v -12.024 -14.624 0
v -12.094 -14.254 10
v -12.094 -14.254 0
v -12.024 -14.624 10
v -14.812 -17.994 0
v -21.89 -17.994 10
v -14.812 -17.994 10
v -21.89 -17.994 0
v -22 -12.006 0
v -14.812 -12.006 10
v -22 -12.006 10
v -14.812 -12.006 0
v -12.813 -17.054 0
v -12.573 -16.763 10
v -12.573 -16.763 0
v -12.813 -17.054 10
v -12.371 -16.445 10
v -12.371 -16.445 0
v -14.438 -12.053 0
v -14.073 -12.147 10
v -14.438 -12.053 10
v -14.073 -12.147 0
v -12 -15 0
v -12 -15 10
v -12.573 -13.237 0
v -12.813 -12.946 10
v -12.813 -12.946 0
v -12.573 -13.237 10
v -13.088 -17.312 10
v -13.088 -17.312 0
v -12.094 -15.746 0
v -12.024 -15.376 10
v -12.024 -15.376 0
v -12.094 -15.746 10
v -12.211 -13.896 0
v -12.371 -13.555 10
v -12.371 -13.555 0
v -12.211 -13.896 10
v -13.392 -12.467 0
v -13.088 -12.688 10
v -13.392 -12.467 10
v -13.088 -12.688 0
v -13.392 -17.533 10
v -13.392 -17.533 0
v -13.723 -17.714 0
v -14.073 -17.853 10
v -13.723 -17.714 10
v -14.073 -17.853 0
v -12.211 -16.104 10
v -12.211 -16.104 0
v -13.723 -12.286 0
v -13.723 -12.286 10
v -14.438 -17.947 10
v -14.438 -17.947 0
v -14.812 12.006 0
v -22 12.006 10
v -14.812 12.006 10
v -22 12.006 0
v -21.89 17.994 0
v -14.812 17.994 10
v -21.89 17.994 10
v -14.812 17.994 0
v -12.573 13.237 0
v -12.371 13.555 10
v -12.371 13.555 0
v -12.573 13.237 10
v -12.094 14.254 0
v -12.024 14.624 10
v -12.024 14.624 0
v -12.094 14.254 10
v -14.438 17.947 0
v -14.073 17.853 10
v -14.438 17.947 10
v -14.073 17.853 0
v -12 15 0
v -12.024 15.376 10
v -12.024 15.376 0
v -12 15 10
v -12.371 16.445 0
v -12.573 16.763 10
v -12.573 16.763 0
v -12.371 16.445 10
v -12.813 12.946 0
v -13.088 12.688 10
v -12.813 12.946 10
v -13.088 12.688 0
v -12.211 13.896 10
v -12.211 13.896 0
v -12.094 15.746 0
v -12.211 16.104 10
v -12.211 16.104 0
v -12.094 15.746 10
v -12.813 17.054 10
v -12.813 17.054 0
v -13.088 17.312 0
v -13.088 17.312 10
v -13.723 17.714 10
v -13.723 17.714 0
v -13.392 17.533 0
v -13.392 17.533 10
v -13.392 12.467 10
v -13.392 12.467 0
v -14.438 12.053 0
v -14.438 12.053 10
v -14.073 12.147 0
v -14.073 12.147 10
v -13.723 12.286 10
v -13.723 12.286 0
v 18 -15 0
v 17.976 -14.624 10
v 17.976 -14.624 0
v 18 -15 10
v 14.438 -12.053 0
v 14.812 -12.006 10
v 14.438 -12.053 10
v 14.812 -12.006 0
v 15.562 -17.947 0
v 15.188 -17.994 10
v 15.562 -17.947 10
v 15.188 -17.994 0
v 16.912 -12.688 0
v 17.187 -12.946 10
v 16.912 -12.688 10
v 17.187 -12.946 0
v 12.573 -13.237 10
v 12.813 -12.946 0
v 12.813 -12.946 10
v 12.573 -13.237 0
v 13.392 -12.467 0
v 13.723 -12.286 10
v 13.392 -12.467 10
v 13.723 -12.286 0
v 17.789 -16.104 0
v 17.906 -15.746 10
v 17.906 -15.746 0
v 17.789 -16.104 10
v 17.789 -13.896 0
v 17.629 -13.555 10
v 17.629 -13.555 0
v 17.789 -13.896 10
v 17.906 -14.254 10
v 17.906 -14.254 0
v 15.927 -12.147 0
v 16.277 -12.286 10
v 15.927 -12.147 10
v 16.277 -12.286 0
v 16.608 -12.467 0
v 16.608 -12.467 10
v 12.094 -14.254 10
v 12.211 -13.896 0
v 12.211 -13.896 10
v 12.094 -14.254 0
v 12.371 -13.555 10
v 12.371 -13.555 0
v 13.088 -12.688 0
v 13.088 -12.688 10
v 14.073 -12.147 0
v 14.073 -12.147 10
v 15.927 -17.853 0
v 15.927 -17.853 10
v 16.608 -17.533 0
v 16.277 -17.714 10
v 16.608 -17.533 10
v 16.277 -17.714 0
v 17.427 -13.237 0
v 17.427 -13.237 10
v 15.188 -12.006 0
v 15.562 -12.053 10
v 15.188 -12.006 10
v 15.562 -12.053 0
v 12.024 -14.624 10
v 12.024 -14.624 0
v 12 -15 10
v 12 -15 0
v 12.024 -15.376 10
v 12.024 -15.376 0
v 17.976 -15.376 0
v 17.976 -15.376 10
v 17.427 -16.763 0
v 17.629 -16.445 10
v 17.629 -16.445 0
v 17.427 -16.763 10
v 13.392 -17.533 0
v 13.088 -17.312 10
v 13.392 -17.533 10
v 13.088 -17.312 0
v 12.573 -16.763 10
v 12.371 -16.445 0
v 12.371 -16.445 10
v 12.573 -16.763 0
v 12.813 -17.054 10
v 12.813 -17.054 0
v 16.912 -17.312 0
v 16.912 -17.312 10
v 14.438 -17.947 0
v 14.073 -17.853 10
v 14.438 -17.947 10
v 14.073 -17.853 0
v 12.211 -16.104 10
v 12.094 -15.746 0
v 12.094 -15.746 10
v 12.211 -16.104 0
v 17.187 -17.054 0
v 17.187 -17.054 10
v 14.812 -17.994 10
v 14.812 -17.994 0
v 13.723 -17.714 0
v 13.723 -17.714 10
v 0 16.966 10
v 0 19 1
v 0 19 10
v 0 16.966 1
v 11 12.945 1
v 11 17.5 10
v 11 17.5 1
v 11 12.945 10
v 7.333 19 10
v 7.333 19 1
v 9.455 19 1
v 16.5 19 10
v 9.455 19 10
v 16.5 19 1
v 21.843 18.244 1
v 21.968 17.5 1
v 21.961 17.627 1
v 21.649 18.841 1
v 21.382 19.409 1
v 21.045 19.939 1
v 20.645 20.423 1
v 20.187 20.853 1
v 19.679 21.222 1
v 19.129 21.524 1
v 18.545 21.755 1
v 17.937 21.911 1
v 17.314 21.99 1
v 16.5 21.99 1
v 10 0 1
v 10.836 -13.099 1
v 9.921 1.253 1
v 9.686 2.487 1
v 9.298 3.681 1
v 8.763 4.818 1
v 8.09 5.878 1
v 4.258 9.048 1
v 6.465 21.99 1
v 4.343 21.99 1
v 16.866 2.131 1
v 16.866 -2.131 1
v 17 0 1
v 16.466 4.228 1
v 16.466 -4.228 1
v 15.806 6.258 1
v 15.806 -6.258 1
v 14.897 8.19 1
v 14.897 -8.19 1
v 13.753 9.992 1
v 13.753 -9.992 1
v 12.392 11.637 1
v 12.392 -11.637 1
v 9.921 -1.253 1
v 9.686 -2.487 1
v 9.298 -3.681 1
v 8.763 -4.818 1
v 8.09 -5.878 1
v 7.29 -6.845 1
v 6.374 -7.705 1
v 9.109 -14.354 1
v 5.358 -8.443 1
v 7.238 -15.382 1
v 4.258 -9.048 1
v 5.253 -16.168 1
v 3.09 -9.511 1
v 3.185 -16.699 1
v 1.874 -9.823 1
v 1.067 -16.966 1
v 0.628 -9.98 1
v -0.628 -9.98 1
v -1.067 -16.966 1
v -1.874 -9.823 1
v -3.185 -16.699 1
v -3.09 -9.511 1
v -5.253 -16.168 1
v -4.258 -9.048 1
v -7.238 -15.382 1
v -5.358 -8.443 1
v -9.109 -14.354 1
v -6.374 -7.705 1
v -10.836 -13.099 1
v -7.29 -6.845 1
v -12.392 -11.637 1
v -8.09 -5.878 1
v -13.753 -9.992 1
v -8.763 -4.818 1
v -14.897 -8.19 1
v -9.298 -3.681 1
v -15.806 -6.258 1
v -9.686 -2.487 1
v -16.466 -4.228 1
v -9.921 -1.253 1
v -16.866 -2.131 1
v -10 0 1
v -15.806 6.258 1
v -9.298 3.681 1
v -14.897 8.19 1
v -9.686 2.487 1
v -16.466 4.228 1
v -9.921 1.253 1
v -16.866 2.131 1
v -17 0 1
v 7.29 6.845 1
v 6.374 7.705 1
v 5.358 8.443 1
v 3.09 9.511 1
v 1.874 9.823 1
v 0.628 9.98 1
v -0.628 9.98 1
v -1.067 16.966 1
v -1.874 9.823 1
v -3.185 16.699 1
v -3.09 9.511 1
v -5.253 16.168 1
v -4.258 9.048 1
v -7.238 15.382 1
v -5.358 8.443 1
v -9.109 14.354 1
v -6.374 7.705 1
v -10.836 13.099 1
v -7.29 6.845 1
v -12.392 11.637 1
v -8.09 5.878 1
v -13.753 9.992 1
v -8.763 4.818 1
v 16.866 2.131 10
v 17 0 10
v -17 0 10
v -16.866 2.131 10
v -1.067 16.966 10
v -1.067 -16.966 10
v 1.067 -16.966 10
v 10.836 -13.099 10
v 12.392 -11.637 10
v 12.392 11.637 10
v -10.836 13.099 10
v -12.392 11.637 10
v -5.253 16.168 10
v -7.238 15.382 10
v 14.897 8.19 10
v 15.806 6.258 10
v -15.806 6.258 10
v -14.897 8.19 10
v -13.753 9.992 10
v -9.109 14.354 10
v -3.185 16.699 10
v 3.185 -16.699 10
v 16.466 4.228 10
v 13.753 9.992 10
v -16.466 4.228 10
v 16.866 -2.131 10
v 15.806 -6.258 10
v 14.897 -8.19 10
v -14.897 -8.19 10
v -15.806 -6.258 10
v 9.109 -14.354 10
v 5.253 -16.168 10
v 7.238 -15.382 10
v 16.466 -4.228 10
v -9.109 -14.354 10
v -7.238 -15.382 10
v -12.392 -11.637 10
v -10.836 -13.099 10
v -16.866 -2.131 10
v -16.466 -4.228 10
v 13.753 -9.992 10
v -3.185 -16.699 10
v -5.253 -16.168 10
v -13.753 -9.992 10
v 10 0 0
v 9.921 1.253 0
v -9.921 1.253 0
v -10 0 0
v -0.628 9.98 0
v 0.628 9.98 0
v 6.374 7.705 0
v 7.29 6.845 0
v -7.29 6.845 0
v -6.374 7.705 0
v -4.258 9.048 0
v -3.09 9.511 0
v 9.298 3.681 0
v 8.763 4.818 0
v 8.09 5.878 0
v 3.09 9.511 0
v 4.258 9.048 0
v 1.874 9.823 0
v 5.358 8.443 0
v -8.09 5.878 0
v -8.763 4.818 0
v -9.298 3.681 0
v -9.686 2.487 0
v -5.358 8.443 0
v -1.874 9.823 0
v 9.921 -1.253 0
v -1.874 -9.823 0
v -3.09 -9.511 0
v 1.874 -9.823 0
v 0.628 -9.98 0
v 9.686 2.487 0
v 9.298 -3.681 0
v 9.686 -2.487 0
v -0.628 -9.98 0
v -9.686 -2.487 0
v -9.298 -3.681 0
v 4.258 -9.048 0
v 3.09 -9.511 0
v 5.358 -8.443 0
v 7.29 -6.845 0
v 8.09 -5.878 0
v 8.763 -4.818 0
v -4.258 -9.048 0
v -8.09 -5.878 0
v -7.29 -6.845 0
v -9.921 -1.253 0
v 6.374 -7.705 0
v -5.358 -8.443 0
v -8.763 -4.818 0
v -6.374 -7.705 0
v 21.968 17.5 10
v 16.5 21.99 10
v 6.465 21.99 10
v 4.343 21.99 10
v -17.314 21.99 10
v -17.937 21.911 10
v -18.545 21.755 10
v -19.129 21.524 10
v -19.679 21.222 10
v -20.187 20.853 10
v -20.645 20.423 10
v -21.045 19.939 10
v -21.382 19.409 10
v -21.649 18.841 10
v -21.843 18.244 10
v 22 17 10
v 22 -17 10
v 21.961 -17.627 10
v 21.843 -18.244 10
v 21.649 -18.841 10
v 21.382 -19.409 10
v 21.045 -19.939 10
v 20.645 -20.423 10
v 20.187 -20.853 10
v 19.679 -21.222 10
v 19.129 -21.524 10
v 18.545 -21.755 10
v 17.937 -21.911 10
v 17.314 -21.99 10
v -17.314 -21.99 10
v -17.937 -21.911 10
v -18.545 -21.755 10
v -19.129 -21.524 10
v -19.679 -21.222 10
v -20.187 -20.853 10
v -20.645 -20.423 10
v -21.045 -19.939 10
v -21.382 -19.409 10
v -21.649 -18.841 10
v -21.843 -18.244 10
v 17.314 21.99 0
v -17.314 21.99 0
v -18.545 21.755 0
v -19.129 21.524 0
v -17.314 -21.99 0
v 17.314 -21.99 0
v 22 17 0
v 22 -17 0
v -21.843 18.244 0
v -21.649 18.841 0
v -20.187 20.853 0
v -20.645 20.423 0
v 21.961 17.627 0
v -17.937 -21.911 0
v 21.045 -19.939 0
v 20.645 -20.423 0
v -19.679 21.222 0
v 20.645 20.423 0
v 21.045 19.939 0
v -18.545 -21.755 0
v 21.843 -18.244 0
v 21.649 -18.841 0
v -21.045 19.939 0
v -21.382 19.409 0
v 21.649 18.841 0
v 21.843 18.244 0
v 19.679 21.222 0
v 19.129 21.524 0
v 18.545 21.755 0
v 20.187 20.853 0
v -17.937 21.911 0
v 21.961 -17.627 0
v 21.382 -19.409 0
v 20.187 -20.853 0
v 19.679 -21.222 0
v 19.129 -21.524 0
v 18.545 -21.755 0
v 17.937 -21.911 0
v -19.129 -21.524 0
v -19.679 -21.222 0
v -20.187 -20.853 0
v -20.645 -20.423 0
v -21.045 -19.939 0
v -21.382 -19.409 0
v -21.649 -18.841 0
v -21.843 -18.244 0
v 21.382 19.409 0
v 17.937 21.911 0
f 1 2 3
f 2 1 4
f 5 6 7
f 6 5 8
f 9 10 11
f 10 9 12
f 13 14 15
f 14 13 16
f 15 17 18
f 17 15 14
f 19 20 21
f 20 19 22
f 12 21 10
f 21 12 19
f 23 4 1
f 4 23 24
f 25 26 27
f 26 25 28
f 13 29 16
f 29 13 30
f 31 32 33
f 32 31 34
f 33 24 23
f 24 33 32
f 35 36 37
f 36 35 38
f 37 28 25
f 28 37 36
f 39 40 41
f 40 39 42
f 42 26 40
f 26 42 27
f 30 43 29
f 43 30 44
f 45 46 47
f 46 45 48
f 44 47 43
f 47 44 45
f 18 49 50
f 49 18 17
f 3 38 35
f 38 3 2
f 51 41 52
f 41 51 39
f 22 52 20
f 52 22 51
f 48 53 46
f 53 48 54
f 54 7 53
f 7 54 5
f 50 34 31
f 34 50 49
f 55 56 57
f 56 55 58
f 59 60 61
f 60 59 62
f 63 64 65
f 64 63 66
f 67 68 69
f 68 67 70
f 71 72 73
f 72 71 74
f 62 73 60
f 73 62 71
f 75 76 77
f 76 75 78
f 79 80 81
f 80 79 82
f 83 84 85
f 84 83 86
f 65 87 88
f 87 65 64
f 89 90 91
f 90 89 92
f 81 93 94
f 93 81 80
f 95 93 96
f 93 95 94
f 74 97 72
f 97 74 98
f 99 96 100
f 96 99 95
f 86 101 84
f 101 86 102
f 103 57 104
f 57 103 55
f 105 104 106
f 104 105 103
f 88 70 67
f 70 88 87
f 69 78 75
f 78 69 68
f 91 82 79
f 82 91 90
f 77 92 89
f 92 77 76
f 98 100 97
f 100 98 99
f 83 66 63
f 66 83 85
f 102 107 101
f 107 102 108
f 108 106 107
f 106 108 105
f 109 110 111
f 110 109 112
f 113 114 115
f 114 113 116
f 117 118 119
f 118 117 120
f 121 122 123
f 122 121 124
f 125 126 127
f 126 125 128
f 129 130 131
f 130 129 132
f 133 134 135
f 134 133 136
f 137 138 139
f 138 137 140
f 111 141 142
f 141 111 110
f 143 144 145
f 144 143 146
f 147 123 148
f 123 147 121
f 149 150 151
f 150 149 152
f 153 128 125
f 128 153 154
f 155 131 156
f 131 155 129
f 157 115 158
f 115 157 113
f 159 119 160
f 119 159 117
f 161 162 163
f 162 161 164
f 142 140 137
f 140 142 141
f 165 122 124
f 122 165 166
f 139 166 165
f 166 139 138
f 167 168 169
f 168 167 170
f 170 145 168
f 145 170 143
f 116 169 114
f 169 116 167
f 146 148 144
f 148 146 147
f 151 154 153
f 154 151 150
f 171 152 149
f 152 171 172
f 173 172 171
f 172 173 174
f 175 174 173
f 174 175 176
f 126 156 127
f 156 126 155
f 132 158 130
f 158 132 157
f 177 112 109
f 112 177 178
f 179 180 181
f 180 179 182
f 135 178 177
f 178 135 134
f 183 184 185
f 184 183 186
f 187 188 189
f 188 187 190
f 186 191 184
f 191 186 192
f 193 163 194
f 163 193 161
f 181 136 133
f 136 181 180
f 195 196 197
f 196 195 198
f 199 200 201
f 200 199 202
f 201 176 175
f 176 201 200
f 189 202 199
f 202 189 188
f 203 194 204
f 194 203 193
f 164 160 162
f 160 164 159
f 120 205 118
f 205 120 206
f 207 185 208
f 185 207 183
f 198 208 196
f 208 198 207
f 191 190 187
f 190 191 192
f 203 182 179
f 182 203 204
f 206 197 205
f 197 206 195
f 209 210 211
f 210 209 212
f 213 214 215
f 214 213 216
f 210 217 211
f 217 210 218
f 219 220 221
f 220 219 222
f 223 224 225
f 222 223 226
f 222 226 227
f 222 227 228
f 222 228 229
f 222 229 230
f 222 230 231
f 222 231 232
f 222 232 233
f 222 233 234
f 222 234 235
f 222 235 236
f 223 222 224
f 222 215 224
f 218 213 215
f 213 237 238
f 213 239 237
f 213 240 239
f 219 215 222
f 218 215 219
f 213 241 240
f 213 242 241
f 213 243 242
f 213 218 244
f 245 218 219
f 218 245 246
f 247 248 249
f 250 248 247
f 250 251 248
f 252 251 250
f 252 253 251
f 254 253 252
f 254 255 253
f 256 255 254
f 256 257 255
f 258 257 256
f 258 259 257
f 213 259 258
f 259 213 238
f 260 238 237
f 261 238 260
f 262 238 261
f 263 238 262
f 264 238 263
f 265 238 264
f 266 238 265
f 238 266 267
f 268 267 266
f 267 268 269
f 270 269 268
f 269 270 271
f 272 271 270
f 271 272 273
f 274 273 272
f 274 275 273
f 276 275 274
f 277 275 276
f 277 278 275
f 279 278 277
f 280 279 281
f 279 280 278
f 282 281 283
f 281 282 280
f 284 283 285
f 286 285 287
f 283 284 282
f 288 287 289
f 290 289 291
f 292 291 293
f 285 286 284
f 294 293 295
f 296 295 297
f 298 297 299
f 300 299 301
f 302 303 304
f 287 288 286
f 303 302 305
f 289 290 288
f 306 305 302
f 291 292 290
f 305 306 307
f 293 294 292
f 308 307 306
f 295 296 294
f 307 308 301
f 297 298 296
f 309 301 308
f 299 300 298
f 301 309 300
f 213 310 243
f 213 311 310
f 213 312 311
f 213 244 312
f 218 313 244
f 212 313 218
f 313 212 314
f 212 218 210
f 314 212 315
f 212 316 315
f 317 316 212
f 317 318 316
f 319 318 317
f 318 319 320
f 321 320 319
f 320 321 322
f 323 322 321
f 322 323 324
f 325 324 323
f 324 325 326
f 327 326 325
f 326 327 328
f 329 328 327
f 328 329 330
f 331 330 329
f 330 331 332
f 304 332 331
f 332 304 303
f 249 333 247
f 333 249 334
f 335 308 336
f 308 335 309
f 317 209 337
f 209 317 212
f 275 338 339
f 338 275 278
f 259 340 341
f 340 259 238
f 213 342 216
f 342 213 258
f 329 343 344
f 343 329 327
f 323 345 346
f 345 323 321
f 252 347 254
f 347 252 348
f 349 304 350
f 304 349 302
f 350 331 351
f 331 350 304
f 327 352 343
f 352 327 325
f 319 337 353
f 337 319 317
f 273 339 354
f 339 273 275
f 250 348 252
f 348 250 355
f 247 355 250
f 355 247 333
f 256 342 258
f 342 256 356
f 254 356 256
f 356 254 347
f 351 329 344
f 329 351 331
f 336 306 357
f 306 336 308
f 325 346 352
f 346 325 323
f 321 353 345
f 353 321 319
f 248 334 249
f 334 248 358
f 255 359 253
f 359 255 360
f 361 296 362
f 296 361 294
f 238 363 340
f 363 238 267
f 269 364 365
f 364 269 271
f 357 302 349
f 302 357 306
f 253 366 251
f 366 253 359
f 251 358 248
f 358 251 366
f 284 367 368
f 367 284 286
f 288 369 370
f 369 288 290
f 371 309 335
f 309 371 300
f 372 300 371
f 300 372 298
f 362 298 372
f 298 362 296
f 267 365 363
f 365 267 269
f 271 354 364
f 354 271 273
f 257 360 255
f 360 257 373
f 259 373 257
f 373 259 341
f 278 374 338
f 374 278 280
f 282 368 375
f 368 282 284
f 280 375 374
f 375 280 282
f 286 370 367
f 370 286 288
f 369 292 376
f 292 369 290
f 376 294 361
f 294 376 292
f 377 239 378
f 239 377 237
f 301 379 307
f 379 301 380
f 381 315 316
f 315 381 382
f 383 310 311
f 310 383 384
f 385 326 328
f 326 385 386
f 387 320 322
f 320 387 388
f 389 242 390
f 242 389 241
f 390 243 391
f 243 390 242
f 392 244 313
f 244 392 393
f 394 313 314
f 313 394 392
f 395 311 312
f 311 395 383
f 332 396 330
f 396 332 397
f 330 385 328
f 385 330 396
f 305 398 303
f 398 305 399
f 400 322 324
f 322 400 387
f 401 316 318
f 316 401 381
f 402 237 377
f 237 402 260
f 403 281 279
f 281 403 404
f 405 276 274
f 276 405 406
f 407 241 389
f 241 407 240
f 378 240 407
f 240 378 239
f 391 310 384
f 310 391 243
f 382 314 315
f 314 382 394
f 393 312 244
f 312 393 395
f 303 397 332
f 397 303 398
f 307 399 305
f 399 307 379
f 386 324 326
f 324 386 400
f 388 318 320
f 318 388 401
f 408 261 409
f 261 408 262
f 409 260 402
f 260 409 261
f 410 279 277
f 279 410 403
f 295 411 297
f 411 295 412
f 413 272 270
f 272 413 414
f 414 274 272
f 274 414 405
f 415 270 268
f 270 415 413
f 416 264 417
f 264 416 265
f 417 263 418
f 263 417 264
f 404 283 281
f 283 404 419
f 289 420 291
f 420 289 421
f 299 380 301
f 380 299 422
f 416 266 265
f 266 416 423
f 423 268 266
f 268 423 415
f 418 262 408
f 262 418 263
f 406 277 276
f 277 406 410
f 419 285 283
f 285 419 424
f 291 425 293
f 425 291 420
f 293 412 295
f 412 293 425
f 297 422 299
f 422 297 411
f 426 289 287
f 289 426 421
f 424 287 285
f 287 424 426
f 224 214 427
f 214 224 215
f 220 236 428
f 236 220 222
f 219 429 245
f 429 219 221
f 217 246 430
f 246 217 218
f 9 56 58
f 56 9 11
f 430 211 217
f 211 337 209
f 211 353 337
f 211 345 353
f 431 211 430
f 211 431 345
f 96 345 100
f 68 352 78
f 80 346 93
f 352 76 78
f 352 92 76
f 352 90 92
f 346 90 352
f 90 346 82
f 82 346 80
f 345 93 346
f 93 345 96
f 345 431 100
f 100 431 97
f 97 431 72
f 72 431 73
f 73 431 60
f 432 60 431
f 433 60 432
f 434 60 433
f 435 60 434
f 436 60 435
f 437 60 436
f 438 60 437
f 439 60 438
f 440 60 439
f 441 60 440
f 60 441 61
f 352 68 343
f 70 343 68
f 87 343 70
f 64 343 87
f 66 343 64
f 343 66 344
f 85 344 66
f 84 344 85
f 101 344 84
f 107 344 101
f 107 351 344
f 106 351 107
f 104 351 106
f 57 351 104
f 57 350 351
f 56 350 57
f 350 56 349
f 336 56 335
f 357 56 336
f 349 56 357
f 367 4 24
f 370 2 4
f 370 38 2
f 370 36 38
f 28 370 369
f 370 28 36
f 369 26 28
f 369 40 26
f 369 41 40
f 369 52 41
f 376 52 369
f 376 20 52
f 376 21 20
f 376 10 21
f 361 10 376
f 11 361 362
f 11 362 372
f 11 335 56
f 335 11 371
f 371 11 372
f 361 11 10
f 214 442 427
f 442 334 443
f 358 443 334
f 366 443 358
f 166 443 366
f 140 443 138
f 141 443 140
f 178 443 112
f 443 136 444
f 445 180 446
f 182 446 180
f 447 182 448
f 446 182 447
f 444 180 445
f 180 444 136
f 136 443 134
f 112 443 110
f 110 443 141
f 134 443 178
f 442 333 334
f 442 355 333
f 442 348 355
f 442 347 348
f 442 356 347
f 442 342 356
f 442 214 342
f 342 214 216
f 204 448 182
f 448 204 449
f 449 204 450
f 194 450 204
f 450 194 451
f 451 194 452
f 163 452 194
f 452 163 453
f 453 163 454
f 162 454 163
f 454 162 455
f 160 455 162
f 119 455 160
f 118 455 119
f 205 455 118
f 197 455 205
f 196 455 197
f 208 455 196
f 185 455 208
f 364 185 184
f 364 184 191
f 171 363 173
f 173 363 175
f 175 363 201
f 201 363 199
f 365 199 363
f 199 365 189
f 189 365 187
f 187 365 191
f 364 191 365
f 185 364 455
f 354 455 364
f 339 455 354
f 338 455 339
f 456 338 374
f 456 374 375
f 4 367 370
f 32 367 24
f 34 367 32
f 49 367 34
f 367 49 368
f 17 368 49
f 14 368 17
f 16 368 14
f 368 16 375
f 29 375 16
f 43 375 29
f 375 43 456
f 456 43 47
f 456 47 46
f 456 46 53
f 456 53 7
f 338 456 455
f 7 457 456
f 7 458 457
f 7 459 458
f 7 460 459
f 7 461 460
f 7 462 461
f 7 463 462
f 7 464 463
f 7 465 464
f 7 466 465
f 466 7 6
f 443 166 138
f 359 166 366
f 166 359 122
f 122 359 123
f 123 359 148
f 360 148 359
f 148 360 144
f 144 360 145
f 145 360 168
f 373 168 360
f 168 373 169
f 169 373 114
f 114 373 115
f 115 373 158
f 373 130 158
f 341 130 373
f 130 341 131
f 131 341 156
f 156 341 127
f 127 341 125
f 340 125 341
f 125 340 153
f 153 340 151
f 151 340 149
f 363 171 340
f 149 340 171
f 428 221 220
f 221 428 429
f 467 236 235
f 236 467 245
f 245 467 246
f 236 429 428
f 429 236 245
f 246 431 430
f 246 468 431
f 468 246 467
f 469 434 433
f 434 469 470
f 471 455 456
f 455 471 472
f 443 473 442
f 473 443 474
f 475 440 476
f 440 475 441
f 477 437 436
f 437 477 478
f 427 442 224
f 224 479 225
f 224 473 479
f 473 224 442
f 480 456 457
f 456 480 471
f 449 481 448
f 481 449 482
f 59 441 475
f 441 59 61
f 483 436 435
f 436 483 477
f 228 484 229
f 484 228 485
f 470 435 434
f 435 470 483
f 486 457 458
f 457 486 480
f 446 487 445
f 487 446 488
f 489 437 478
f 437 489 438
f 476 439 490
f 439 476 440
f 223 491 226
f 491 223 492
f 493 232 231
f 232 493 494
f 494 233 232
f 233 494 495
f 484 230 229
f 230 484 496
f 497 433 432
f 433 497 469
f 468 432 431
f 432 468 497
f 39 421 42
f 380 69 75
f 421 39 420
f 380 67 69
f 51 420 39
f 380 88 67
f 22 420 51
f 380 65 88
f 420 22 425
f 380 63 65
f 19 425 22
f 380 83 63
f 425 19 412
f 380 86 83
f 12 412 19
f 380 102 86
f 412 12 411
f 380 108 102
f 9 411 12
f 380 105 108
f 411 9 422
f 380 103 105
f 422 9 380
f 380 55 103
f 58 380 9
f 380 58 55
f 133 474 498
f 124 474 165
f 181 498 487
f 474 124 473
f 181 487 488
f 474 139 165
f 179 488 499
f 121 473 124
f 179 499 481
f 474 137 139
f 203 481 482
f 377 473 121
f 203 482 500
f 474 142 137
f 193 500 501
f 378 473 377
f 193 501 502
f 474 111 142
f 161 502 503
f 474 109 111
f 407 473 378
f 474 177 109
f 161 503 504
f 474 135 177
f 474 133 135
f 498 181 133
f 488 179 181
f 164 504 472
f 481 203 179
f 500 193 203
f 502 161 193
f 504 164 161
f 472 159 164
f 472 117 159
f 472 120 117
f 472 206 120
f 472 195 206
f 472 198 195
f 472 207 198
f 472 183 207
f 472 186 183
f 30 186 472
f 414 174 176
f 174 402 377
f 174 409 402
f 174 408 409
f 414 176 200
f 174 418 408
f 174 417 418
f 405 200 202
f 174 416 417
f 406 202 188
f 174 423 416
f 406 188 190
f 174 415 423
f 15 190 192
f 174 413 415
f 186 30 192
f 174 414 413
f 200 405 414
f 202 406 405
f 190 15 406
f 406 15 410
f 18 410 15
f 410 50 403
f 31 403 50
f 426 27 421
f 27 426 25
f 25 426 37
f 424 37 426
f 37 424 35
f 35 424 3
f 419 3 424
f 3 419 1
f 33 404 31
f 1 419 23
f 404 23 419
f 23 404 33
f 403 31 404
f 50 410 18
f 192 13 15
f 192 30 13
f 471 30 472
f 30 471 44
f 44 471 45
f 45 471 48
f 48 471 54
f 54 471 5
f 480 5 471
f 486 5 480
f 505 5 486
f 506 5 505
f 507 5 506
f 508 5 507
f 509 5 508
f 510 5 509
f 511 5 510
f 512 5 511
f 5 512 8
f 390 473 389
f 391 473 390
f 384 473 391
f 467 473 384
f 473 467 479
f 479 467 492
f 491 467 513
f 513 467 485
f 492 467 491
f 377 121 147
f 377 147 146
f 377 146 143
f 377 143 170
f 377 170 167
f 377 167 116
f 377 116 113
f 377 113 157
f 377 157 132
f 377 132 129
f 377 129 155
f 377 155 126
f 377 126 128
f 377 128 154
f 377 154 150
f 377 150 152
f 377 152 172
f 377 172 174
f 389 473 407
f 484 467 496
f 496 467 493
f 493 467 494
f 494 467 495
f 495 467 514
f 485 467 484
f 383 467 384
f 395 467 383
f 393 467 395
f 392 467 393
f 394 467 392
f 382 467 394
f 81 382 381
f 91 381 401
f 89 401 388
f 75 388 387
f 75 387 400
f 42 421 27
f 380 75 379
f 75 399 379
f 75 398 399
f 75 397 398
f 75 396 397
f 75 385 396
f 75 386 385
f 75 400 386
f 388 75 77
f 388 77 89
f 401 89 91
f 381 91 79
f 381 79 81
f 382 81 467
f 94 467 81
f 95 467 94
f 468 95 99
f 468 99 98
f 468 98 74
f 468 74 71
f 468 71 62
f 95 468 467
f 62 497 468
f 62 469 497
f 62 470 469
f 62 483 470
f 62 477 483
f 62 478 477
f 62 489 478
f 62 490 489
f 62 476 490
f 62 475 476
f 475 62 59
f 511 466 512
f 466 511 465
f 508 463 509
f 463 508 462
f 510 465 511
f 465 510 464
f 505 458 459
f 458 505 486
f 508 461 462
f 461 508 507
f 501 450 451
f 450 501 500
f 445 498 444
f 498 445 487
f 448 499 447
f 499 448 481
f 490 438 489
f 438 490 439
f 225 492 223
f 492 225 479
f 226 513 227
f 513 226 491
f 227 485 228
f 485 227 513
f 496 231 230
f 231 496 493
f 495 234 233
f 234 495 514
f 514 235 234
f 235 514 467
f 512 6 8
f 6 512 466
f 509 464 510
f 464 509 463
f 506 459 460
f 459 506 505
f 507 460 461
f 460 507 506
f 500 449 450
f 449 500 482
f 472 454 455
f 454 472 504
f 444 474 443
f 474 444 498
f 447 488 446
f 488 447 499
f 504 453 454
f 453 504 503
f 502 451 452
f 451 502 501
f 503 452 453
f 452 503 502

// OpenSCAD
$fn = 50;


difference() {
	union() {
		translate(v = [0, 0, 0]) {
			rotate(a = [0, 0, 0]) {
				hull() {
					translate(v = [-17.0000000000, 17.0000000000, 0]) {
						rotate(a = [0, 0, 0]) {
							translate(v = [0, 0, 0]) {
								rotate(a = [0, 0, 0]) {
									cylinder(h = 10, r = 5);
								}
							}
						}
					}
					translate(v = [17.0000000000, 17.0000000000, 0]) {
						rotate(a = [0, 0, 0]) {
							translate(v = [0, 0, 0]) {
								rotate(a = [0, 0, 0]) {
									cylinder(h = 10, r = 5);
								}
							}
						}
					}
					translate(v = [-17.0000000000, -17.0000000000, 0]) {
						rotate(a = [0, 0, 0]) {
							translate(v = [0, 0, 0]) {
								rotate(a = [0, 0, 0]) {
									cylinder(h = 10, r = 5);
								}
							}
						}
					}
					translate(v = [17.0000000000, -17.0000000000, 0]) {
						rotate(a = [0, 0, 0]) {
							translate(v = [0, 0, 0]) {
								rotate(a = [0, 0, 0]) {
									cylinder(h = 10, r = 5);
								}
							}
						}
					}
				}
			}
		}
	}
	union() {
		translate(v = [-22.5000000000, -15.0000000000, -125]) {
			rotate(a = [0, 0, 0]) {
				hull() {
					translate(v = [7.5000000000, 0, 0]) {
						rotate(a = [0, 0, 0]) {
							translate(v = [0, 0, 0]) {
								rotate(a = [0, 0, 0]) {
									cylinder(h = 250, r = 3.0000000000);
								}
							}
						}
					}
					translate(v = [-7.5000000000, 0, 0]) {
						rotate(a = [0, 0, 0]) {
							translate(v = [0, 0, 0]) {
								rotate(a = [0, 0, 0]) {
									cylinder(h = 250, r = 3.0000000000);
								}
							}
						}
					}
				}
			}
		}
		translate(v = [-22.5000000000, 15.0000000000, -125]) {
			rotate(a = [0, 0, 0]) {
				hull() {
					translate(v = [7.5000000000, 0, 0]) {
						rotate(a = [0, 0, 0]) {
							translate(v = [0, 0, 0]) {
								rotate(a = [0, 0, 0]) {
									cylinder(h = 250, r = 3.0000000000);
								}
							}
						}
					}
					translate(v = [-7.5000000000, 0, 0]) {
						rotate(a = [0, 0, 0]) {
							translate(v = [0, 0, 0]) {
								rotate(a = [0, 0, 0]) {
									cylinder(h = 250, r = 3.0000000000);
								}
							}
						}
					}
				}
			}
		}
		translate(v = [15.0000000000, -15.0000000000, -125.0000000000]) {
			rotate(a = [0, 0, 0]) {
				cylinder(h = 250, r = 3.0000000000);
			}
		}
		translate(v = [0.0000000000, 11.0000000000, 1.0000000000]) {
			rotate(a = [0, 0, 0]) {
				cube(size = [11, 8, 12]);
			}
		}
		translate(v = [0, 0, 1.0000000000]) {
			rotate(a = [0, 0, 0]) {
				cylinder(h = 12, r = 17.0000000000);
			}
		}
		translate(v = [0, 0, -5.0000000000]) {
			rotate(a = [0, 0, 0]) {
				cylinder(h = 10, r = 10.0000000000);
			}
		}
		translate(v = [0.0000000000, 17.5000000000, 1]) {
			rotate(a = [0, 0, 0]) {
				cube(size = [22.0000000000, 1.5000000000, 12]);
			}
		}
		translate(v = [16.5000000000, 17.5000000000, 1]) {
			rotate(a = [0, 0, 0]) {
				cube(size = [5.5000000000, 4.5000000000, 12]);
			}
		}
		translate(v = [3.5833333333, 22.7500000000, 1]) {
			rotate(a = [0, 0, -45]) {
				cube(size = [7.5000000000, 1.5000000000, 12]);
			}
		}
	}
}
